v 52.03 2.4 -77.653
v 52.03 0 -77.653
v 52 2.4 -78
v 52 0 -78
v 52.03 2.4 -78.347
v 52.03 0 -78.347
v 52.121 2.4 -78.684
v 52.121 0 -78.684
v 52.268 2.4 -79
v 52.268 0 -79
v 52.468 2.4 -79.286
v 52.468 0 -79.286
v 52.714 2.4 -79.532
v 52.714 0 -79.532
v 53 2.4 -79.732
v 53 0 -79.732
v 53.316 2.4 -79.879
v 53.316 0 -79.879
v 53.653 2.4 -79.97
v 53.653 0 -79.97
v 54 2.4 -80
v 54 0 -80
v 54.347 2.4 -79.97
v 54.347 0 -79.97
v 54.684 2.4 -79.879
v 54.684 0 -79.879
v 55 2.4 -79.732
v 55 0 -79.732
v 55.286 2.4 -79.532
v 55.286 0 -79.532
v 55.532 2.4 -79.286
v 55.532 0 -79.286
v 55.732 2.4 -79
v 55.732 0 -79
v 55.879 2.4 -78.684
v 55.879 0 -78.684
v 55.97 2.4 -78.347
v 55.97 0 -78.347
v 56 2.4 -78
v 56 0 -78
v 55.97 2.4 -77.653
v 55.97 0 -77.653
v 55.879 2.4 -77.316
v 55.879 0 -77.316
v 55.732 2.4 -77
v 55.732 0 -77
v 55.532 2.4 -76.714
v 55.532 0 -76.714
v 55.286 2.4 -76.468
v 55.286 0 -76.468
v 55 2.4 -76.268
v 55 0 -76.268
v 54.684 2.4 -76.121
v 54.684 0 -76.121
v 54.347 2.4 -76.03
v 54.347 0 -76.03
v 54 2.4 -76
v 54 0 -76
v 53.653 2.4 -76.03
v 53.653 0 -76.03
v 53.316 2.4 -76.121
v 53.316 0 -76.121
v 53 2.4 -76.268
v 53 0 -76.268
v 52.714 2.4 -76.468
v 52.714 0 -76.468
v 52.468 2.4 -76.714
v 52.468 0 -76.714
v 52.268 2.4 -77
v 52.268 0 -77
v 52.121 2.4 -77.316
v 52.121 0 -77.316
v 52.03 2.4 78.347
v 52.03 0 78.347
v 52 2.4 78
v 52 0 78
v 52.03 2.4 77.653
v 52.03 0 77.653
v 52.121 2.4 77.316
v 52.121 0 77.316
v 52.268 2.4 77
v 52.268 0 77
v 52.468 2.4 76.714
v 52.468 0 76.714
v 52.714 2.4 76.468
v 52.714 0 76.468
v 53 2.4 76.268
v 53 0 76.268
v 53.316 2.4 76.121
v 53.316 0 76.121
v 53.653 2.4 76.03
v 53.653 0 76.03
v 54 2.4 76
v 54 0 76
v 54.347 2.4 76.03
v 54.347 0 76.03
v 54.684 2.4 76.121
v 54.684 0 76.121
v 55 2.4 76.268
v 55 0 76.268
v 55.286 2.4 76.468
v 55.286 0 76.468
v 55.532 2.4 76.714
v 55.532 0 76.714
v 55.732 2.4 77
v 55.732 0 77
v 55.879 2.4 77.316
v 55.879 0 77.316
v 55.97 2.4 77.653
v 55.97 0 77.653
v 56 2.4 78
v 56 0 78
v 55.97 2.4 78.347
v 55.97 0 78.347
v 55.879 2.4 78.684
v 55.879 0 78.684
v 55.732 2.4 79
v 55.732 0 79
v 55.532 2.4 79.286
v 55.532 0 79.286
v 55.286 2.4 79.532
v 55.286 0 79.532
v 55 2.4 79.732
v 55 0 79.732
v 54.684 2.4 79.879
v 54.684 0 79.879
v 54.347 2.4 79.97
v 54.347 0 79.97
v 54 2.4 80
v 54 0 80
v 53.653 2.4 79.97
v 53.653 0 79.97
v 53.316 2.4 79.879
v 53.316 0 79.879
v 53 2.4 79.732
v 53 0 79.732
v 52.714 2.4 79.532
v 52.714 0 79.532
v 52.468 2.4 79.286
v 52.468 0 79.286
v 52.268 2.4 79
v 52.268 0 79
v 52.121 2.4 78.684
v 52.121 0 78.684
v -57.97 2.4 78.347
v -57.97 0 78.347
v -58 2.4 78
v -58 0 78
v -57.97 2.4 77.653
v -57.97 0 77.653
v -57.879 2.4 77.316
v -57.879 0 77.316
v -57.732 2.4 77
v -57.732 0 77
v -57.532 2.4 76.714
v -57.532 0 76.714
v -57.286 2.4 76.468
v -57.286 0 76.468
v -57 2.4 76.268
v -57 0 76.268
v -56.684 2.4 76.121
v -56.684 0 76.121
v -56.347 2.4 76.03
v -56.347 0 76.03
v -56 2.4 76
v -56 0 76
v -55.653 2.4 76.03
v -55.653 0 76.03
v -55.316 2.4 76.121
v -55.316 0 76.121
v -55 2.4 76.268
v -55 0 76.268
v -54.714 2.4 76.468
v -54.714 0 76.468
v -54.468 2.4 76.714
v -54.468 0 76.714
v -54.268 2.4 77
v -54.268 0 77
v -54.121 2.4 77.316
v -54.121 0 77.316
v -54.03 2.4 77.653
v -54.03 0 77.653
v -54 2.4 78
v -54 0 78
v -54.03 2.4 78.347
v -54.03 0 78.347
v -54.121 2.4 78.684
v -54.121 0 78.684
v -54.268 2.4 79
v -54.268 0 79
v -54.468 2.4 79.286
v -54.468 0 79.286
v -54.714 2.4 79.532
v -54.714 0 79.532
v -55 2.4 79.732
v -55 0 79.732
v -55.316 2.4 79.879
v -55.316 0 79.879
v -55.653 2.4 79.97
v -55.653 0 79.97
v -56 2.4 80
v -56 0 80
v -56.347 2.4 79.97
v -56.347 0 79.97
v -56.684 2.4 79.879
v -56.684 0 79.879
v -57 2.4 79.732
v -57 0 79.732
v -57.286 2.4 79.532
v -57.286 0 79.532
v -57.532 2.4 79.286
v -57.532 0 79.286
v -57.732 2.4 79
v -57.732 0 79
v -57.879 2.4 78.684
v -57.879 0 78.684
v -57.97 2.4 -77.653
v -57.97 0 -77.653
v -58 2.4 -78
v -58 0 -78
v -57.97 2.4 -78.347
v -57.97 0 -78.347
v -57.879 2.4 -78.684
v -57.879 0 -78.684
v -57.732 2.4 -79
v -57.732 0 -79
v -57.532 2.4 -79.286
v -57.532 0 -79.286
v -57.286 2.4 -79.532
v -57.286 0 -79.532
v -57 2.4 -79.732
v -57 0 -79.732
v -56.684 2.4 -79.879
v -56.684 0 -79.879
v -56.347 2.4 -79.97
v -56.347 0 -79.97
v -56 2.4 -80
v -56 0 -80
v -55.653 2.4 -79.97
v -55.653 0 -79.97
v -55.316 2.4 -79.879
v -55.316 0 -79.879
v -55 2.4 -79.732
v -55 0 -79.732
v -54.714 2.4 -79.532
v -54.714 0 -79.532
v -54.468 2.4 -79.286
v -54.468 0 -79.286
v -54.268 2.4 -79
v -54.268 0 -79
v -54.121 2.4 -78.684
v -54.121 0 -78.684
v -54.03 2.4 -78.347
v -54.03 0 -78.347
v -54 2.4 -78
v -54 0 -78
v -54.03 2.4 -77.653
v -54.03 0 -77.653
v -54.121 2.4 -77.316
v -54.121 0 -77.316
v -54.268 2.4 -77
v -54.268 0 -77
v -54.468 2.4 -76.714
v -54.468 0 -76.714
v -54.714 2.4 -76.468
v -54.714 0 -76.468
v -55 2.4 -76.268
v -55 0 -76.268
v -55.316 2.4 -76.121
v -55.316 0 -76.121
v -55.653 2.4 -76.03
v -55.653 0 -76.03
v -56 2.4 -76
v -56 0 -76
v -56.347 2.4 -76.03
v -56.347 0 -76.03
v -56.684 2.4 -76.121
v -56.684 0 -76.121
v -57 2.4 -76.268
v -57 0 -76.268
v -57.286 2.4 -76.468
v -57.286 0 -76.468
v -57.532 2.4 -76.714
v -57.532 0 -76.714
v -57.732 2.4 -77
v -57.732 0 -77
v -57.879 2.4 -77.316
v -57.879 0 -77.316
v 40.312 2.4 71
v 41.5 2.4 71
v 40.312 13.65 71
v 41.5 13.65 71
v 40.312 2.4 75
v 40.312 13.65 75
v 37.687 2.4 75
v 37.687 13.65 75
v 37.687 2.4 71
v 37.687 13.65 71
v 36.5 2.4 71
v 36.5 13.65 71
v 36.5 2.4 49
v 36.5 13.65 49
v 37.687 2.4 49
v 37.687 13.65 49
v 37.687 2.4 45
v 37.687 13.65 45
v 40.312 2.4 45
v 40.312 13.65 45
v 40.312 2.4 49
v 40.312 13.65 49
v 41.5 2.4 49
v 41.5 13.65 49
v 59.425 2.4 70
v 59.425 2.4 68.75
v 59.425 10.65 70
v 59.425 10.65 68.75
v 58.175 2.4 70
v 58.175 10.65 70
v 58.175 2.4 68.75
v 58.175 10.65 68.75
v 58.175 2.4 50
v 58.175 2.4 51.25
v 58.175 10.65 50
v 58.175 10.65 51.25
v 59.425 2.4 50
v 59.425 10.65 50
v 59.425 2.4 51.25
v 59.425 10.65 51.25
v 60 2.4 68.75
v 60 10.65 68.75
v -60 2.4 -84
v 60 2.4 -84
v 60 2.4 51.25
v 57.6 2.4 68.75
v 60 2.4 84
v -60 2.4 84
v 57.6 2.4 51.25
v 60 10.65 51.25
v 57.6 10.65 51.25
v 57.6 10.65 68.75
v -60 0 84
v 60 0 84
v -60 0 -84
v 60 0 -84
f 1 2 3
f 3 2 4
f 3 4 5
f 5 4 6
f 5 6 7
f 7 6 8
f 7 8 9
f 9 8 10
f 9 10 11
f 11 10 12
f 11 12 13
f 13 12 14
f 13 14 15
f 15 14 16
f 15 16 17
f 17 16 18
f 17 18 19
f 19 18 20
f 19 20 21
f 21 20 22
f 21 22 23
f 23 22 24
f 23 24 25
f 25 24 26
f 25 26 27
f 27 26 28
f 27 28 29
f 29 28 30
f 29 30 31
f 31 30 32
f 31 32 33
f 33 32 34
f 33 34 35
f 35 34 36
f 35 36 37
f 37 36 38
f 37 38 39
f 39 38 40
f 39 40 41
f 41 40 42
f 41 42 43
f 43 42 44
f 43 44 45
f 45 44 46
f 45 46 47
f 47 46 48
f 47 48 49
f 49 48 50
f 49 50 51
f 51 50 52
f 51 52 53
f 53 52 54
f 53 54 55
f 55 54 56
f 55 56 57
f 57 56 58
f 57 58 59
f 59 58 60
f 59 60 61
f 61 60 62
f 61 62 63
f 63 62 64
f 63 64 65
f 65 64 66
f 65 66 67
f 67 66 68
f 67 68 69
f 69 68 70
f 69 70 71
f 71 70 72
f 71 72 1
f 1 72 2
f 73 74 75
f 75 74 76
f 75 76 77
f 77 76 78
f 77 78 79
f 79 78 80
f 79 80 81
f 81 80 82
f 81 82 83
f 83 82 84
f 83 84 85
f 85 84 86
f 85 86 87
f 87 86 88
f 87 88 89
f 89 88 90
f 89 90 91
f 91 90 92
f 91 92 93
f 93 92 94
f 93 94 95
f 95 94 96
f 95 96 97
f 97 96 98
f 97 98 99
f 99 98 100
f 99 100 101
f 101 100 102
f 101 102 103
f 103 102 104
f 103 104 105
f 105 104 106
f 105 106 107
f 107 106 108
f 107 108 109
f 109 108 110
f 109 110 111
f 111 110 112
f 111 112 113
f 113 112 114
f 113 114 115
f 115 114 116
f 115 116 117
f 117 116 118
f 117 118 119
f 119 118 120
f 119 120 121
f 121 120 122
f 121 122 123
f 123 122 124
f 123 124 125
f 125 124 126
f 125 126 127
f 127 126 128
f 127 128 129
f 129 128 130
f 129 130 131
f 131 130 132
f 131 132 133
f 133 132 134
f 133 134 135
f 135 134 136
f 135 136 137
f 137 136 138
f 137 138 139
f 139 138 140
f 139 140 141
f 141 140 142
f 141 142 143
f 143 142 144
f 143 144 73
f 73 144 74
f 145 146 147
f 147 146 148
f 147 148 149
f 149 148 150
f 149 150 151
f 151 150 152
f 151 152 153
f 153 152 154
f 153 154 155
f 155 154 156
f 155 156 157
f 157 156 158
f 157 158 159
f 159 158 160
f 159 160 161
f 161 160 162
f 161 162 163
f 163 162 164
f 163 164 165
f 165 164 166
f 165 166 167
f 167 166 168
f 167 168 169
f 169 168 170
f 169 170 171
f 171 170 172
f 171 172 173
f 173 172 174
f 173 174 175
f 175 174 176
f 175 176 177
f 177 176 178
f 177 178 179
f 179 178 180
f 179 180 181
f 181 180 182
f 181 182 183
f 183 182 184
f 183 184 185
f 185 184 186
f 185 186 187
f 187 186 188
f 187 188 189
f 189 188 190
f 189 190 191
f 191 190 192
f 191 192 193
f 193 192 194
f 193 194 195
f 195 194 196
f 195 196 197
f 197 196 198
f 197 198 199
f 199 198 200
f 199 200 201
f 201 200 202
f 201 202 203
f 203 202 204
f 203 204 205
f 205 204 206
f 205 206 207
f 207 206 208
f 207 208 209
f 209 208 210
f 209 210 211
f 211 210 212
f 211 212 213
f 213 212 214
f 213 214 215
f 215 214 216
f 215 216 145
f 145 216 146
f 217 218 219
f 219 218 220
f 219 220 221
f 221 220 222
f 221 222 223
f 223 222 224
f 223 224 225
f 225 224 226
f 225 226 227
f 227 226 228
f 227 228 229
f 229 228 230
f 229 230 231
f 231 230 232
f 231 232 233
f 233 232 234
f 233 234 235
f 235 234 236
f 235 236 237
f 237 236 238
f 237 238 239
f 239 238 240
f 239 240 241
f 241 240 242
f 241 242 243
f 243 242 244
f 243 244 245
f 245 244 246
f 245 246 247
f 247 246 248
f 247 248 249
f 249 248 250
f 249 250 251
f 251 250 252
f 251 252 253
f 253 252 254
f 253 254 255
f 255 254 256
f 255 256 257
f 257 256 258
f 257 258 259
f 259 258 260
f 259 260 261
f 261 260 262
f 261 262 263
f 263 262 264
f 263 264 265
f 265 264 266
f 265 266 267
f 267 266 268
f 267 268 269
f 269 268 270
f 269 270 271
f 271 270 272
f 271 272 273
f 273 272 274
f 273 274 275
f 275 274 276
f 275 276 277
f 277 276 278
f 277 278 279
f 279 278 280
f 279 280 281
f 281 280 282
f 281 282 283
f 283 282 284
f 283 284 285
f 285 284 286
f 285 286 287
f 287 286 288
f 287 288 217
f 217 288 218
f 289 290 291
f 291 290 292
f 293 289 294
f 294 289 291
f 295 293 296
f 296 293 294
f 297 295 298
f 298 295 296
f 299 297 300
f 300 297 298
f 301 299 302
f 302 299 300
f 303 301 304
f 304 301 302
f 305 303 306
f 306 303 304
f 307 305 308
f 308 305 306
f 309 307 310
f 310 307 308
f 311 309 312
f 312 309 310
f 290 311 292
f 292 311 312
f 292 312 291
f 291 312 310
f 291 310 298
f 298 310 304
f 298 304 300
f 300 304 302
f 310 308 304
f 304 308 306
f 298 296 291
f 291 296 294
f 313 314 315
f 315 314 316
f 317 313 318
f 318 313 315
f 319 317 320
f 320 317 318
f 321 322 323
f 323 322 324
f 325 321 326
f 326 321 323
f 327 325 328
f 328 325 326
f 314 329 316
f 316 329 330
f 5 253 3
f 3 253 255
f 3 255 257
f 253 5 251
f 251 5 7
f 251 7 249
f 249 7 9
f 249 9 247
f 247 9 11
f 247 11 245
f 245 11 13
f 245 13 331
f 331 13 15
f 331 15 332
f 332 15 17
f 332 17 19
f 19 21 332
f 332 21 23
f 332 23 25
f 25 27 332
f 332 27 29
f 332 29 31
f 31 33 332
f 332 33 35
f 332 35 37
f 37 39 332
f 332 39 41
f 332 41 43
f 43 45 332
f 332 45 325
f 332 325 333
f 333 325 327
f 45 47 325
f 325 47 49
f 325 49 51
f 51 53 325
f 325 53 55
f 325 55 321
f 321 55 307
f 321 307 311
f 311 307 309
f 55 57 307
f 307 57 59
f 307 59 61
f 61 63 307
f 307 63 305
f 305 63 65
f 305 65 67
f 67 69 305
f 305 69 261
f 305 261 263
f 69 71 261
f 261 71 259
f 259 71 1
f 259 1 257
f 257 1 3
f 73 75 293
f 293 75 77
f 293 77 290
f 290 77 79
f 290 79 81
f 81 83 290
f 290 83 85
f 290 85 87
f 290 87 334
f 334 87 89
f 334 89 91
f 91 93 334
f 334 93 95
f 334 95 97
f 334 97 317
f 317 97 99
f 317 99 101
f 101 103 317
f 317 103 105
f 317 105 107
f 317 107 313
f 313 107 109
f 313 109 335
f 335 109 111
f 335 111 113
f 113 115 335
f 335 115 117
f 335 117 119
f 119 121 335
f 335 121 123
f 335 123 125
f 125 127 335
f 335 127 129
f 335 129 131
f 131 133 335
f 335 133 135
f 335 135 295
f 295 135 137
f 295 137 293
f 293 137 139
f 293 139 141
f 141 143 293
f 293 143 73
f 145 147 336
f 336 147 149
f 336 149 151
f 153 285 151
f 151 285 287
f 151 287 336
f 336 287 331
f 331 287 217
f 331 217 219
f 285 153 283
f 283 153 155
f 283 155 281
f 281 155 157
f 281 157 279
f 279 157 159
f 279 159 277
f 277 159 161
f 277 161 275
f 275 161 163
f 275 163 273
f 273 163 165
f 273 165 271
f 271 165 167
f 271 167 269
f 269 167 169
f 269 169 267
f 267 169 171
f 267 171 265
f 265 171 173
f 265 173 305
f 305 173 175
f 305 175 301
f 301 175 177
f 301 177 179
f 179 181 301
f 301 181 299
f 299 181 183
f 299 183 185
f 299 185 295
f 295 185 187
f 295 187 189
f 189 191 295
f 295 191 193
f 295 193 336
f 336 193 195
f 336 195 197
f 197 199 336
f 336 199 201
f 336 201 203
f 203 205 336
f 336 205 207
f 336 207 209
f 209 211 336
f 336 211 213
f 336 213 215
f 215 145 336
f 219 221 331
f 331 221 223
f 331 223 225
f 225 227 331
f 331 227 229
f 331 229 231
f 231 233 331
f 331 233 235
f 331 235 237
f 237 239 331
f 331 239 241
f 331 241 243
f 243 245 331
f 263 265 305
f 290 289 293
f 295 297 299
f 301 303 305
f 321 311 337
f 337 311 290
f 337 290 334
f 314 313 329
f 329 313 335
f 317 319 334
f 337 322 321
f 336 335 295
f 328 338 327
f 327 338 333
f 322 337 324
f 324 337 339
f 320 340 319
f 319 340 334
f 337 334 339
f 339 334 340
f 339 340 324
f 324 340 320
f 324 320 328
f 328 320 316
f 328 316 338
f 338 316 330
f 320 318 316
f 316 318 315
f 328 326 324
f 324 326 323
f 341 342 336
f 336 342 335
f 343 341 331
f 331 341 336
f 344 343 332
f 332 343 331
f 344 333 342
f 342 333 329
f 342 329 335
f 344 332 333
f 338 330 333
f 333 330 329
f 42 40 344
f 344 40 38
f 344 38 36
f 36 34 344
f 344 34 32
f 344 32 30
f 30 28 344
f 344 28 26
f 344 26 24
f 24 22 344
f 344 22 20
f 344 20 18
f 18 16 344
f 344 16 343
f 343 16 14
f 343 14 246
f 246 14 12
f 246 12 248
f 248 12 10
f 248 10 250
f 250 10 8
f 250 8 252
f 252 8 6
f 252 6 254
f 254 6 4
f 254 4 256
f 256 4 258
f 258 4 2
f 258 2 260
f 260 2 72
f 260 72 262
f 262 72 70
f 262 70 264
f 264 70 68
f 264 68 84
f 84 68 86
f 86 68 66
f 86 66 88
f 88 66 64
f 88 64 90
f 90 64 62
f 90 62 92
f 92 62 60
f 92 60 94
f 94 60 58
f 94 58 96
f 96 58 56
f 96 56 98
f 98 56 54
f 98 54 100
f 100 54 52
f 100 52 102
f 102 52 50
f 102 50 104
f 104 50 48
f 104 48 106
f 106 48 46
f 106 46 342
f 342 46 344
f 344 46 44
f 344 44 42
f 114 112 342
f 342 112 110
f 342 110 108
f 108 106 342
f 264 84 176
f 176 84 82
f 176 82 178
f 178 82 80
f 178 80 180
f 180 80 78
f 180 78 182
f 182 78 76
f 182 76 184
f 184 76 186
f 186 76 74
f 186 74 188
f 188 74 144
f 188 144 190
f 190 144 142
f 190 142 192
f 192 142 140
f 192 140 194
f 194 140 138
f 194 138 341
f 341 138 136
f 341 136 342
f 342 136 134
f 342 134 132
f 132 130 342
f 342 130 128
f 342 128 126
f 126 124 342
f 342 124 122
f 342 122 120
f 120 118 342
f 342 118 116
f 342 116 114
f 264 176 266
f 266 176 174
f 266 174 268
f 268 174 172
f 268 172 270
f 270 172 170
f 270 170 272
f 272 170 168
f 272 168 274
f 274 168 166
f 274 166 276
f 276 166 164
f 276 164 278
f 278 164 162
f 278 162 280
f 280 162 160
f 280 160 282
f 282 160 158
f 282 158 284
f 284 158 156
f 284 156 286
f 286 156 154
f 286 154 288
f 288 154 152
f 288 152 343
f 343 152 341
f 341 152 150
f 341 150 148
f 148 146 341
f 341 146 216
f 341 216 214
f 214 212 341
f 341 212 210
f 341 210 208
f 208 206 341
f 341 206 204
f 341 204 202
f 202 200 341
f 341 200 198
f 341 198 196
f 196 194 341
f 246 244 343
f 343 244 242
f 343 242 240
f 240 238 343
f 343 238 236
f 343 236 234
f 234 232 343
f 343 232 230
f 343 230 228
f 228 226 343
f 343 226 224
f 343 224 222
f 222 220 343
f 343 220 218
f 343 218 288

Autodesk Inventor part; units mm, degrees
ref_plane "YZ Plane" through (0, 0, 0) normal (1, 0, 0) x (0, 1, 0)
ref_plane "XZ Plane" through (0, 0, 0) normal (0, 1, 0) x (-1, 0, 0)
ref_plane "XY Plane" through (0, 0, 0) normal (0, 0, 1) x (1, 0, 0)
sketch "Sketch1" plane through (0, 0, 0) normal (0, 1, 0) x (-1, 0, 0)
  line L0 (-60, -84) -> (60, -84)
  line L1 (60, -84) -> (60, 84)
  line L2 (60, 84) -> (-60, 84)
  line L3 (-60, 84) -> (-60, -84)
  line L4 (-60, -84) -> (60, 84) construction
  line L5 (60, -84) -> (-60, 84) construction
  point P0 (0, 0)
  dimension "d0" = 168
  dimension "d1" = 120
extrude "Extrusion1" add sketch "Sketch1" along normal blind 2.4
sketch "Sketch2" plane through (0, 2.4, 0) normal (0, 1, 0) x (1, 0, 0)
  line L0 (60, -84) -> (60, 84) projected
  line L1 (60, -68.75) -> (57.6, -68.75)
  line L2 (57.6, -68.75) -> (57.6, -51.25)
  line L3 (57.6, -51.25) -> (60, -51.25)
  line L4 (60, -51.25) -> (60, -68.75)
  line L5 (-60, -84) -> (60, -84) projected
  point P0 (0, 0)
  dimension "d4" = 2.4
  dimension "d5" = 17.5
  dimension "d6" = 15.25
extrude "Extrusion2" add sketch "Sketch2" along normal blind 8.25
sketch "Sketch3" plane through (0, 2.4, 0) normal (0, 1, 0) x (1, 0, 0)
  line L0 (59.425, -52.5) -> (58.175, -52.5)
  line L1 (58.175, -52.5) -> (58.175, -50)
  line L2 (58.175, -50) -> (59.425, -50)
  line L3 (59.425, -50) -> (59.425, -52.5)
  line L4 (57.6, -51.25) -> (60, -51.25) projected
  line L5 (59.425, -52.5) -> (58.175, -50) construction
  line L6 (58.175, -52.5) -> (59.425, -50) construction
  line L7 (59.425, -67.5) -> (58.175, -67.5)
  line L8 (58.175, -67.5) -> (58.175, -70)
  line L9 (58.175, -70) -> (59.425, -70)
  line L10 (59.425, -70) -> (59.425, -67.5)
  line L11 (60, -68.75) -> (57.6, -68.75) projected
  line L12 (59.425, -67.5) -> (58.175, -70) construction
  line L13 (58.175, -67.5) -> (59.425, -70) construction
  point P0 (0, 0)
  point P1 (58.8, -51.25)
  point P2 (58.8, -68.75)
  point P3 (59.425, -68.75)
  point P4 (58.175, -68.75)
  point P5 (58.175, -51.25)
  point P6 (59.425, -51.25)
  dimension "d9" = 1.25
  dimension "d10" = 2.5
  dimension "d11" = 1.25
  dimension "d12" = 2.5
extrude "Extrusion3" add sketch "Sketch3" along normal blind 8.25 contours L4 L1 L2 L3 | L10 L9 L8 L11
sketch "Sketch4" plane through (0, 2.4, 0) normal (0, 1, 0) x (1, 0, 0)
  line L0 (60, -84) -> (60, -68.75) projected
  line L1 (-60, -84) -> (60, -84) projected
  line L2 (41.5, -71) -> (36.5, -71)
  line L3 (36.5, -71) -> (36.5, -49)
  line L4 (36.5, -49) -> (41.5, -49)
  line L5 (41.5, -49) -> (41.5, -71)
  line L6 (40.3125, -67) -> (37.6875, -67)
  line L7 (37.6875, -67) -> (37.6875, -75)
  line L8 (37.6875, -75) -> (40.3125, -75)
  line L9 (40.3125, -75) -> (40.3125, -67)
  line L10 (40.3125, -67) -> (37.6875, -75) construction
  line L11 (37.6875, -67) -> (40.3125, -75) construction
  line L12 (40.3125, -53) -> (37.6875, -53)
  line L13 (37.6875, -53) -> (37.6875, -45)
  line L14 (37.6875, -45) -> (40.3125, -45)
  line L15 (40.3125, -45) -> (40.3125, -53)
  line L16 (40.3125, -53) -> (37.6875, -45) construction
  line L17 (37.6875, -53) -> (40.3125, -45) construction
  point P0 (0, 0)
  point P1 (39, -71)
  point P2 (39, -49)
  point P3 (40.3125, -71)
  point P4 (37.6875, -71)
  point P5 (37.6875, -49)
  point P6 (40.3125, -49)
  dimension "d15" = 18.5
  dimension "d16" = 13
  dimension "d17" = 5
  dimension "d18" = 22
  dimension "d21" = 2.625
  dimension "d22" = 8
  dimension "d23" = 2.625
  dimension "d24" = 8
extrude "Extrusion4" add sketch "Sketch4" along normal blind 11.25
ref_plane "Work Plane3" through (-60, 0, 0) normal (0, 0, 1) x (1, 0, 0)
sketch "Sketch11" plane through (0, 0, 0) normal (0, -1, 0) x (1, 0, 0)
  line L0 (-60, 84) -> (60, 84) projected
  line L1 (-60, -84) -> (-60, 84) projected
  line L2 (60, -84) -> (-60, -84) projected
  point P0 (0, 0)
  point P1 (-56, 78)
  point P2 (-56, -78)
  dimension "d63" = 6
  dimension "d64" = 4
  dimension "d65" = 4
  dimension "d66" = 6
hole "Hole1" at (-56, 0, 78) at (-56, 0, -78) direction (0, 1, 0) diameter 4 end through all
sketch "Sketch12" plane through (0, 2.4, 0) normal (0, 1, 0) x (1, 0, 0)
  point P0 (0, 0)
sketch "Sketch13" plane through (0, 0, 0) normal (0, -1, 0) x (1, 0, 0)
  line L0 (60, 84) -> (60, -84) projected
  line L1 (-60, 84) -> (60, 84) projected
  point P0 (0, 0)
  point P1 (54, 78)
  point P2 (54.2858, -79.2517)
  dimension "d74" = 6
  dimension "d75" = 6
hole "Hole2" at (54, 0, 78) direction (0, 1, 0) diameter 4 depth 10 tip angle 118
mirror "Mirror4" about plane through (-60, 0, 0) normal (0, 0, 1) of "Hole2"
properties part number "lower casing"
